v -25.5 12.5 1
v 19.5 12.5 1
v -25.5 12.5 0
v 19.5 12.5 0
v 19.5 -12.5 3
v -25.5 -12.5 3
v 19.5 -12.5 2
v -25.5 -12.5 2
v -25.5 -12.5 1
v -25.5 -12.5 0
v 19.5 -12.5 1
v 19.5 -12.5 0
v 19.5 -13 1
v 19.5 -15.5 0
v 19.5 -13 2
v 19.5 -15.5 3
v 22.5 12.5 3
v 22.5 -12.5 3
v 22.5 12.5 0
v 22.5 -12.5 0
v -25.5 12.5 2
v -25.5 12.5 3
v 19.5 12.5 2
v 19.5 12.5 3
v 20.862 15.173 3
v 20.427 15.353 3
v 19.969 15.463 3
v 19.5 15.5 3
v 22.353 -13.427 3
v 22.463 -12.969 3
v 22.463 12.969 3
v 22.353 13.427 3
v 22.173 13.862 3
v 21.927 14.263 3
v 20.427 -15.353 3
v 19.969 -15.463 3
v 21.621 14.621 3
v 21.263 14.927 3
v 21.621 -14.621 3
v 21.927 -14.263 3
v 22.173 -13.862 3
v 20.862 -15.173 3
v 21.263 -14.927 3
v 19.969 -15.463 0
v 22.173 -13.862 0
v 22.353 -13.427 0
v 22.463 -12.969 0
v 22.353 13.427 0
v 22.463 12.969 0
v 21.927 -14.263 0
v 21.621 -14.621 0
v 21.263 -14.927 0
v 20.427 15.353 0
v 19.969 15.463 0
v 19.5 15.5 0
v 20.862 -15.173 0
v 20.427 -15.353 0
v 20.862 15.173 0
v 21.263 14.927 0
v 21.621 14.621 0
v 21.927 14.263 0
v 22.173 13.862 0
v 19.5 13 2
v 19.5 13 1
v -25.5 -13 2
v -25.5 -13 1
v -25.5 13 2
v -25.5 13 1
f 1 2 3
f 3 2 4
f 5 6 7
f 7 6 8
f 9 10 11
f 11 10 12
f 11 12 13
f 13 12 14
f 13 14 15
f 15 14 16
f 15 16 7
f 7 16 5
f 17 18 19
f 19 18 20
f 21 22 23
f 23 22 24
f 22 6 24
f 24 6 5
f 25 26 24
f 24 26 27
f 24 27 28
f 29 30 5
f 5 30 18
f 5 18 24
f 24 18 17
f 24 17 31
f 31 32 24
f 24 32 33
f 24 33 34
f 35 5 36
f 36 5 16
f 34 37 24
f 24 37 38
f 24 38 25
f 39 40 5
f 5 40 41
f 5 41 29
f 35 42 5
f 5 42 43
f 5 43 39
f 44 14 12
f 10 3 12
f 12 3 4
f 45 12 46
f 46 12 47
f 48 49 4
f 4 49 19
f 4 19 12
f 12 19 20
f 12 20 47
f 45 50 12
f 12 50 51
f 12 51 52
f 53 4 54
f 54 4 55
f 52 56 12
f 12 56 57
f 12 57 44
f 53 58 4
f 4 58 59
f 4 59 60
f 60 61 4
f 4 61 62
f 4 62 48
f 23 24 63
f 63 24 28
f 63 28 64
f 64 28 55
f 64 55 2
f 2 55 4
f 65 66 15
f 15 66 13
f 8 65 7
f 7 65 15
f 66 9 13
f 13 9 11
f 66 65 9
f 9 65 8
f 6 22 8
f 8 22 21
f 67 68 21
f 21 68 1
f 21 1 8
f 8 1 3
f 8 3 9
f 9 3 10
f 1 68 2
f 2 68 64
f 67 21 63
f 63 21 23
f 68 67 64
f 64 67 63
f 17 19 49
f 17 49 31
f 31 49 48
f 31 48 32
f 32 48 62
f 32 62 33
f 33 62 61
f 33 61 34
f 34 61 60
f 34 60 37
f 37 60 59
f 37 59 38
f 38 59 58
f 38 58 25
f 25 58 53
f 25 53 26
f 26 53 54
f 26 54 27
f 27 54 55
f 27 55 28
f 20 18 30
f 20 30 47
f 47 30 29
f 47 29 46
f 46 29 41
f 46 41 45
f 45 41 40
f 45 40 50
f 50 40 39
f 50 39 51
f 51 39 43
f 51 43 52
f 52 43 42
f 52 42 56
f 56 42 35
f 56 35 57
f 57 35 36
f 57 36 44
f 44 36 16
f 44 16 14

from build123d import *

# Parameters (mm, degrees)
SKETCH1_W           = 45
SKETCH1_H           = 25
BOSS_EXTRUDE1_DEPTH = 3
SKETCH2_W           = 3
SKETCH2_H           = 3
BOSS_EXTRUDE2_DEPTH = 3
SKETCH3_W           = 1
SKETCH3_H           = 0.5
BOSS_EXTRUDE3_DEPTH = 45
SKETCH4_W           = 3
SKETCH4_H           = 25
BOSS_EXTRUDE4_DEPTH = 3
FILLET1_R           = 3


with BuildPart() as part:
    # Sketch1 → Boss-Extrude1 (new body)
    with BuildSketch(Plane.XY):
        Rectangle(SKETCH1_W, SKETCH1_H)
    extrude(amount=BOSS_EXTRUDE1_DEPTH)

    # Sketch2 → Boss-Extrude2 (add)
    with BuildSketch(Plane(origin=(22.5, 0, 0), x_dir=(0, 0, -1), z_dir=(1, 0, 0))):
        with Locations((-1.5, -14)):
            Rectangle(SKETCH2_W, SKETCH2_H)
        with Locations((-1.5, 14)):
            Rectangle(SKETCH2_W, SKETCH2_H)
    extrude(amount=-BOSS_EXTRUDE2_DEPTH)

    # Sketch3 → Boss-Extrude3 (add)
    with BuildSketch(Plane.ZY.offset(-19.5)):
        with Locations((1.5, -12.75)):
            Rectangle(SKETCH3_W, SKETCH3_H)
        with Locations((1.5, 12.75)):
            Rectangle(SKETCH3_W, SKETCH3_H)
    extrude(amount=BOSS_EXTRUDE3_DEPTH)

    # Sketch4 → Boss-Extrude4 (add)
    with BuildSketch(Plane.ZY.offset(22.5)):
        with Locations((1.5, 0)):
            Rectangle(SKETCH4_W, SKETCH4_H)
    extrude(amount=BOSS_EXTRUDE4_DEPTH)

    # Fillet1
    fillet1_edges = [part.edges().sort_by_distance(p)[0] for p in [
        (22.5, 15.5, 1.5),
        (22.5, -15.5, 1.5),
    ]]
    fillet(fillet1_edges, radius=FILLET1_R - 0.0001)  # a hair under: the kernel refuses the full size


solid = part.part
